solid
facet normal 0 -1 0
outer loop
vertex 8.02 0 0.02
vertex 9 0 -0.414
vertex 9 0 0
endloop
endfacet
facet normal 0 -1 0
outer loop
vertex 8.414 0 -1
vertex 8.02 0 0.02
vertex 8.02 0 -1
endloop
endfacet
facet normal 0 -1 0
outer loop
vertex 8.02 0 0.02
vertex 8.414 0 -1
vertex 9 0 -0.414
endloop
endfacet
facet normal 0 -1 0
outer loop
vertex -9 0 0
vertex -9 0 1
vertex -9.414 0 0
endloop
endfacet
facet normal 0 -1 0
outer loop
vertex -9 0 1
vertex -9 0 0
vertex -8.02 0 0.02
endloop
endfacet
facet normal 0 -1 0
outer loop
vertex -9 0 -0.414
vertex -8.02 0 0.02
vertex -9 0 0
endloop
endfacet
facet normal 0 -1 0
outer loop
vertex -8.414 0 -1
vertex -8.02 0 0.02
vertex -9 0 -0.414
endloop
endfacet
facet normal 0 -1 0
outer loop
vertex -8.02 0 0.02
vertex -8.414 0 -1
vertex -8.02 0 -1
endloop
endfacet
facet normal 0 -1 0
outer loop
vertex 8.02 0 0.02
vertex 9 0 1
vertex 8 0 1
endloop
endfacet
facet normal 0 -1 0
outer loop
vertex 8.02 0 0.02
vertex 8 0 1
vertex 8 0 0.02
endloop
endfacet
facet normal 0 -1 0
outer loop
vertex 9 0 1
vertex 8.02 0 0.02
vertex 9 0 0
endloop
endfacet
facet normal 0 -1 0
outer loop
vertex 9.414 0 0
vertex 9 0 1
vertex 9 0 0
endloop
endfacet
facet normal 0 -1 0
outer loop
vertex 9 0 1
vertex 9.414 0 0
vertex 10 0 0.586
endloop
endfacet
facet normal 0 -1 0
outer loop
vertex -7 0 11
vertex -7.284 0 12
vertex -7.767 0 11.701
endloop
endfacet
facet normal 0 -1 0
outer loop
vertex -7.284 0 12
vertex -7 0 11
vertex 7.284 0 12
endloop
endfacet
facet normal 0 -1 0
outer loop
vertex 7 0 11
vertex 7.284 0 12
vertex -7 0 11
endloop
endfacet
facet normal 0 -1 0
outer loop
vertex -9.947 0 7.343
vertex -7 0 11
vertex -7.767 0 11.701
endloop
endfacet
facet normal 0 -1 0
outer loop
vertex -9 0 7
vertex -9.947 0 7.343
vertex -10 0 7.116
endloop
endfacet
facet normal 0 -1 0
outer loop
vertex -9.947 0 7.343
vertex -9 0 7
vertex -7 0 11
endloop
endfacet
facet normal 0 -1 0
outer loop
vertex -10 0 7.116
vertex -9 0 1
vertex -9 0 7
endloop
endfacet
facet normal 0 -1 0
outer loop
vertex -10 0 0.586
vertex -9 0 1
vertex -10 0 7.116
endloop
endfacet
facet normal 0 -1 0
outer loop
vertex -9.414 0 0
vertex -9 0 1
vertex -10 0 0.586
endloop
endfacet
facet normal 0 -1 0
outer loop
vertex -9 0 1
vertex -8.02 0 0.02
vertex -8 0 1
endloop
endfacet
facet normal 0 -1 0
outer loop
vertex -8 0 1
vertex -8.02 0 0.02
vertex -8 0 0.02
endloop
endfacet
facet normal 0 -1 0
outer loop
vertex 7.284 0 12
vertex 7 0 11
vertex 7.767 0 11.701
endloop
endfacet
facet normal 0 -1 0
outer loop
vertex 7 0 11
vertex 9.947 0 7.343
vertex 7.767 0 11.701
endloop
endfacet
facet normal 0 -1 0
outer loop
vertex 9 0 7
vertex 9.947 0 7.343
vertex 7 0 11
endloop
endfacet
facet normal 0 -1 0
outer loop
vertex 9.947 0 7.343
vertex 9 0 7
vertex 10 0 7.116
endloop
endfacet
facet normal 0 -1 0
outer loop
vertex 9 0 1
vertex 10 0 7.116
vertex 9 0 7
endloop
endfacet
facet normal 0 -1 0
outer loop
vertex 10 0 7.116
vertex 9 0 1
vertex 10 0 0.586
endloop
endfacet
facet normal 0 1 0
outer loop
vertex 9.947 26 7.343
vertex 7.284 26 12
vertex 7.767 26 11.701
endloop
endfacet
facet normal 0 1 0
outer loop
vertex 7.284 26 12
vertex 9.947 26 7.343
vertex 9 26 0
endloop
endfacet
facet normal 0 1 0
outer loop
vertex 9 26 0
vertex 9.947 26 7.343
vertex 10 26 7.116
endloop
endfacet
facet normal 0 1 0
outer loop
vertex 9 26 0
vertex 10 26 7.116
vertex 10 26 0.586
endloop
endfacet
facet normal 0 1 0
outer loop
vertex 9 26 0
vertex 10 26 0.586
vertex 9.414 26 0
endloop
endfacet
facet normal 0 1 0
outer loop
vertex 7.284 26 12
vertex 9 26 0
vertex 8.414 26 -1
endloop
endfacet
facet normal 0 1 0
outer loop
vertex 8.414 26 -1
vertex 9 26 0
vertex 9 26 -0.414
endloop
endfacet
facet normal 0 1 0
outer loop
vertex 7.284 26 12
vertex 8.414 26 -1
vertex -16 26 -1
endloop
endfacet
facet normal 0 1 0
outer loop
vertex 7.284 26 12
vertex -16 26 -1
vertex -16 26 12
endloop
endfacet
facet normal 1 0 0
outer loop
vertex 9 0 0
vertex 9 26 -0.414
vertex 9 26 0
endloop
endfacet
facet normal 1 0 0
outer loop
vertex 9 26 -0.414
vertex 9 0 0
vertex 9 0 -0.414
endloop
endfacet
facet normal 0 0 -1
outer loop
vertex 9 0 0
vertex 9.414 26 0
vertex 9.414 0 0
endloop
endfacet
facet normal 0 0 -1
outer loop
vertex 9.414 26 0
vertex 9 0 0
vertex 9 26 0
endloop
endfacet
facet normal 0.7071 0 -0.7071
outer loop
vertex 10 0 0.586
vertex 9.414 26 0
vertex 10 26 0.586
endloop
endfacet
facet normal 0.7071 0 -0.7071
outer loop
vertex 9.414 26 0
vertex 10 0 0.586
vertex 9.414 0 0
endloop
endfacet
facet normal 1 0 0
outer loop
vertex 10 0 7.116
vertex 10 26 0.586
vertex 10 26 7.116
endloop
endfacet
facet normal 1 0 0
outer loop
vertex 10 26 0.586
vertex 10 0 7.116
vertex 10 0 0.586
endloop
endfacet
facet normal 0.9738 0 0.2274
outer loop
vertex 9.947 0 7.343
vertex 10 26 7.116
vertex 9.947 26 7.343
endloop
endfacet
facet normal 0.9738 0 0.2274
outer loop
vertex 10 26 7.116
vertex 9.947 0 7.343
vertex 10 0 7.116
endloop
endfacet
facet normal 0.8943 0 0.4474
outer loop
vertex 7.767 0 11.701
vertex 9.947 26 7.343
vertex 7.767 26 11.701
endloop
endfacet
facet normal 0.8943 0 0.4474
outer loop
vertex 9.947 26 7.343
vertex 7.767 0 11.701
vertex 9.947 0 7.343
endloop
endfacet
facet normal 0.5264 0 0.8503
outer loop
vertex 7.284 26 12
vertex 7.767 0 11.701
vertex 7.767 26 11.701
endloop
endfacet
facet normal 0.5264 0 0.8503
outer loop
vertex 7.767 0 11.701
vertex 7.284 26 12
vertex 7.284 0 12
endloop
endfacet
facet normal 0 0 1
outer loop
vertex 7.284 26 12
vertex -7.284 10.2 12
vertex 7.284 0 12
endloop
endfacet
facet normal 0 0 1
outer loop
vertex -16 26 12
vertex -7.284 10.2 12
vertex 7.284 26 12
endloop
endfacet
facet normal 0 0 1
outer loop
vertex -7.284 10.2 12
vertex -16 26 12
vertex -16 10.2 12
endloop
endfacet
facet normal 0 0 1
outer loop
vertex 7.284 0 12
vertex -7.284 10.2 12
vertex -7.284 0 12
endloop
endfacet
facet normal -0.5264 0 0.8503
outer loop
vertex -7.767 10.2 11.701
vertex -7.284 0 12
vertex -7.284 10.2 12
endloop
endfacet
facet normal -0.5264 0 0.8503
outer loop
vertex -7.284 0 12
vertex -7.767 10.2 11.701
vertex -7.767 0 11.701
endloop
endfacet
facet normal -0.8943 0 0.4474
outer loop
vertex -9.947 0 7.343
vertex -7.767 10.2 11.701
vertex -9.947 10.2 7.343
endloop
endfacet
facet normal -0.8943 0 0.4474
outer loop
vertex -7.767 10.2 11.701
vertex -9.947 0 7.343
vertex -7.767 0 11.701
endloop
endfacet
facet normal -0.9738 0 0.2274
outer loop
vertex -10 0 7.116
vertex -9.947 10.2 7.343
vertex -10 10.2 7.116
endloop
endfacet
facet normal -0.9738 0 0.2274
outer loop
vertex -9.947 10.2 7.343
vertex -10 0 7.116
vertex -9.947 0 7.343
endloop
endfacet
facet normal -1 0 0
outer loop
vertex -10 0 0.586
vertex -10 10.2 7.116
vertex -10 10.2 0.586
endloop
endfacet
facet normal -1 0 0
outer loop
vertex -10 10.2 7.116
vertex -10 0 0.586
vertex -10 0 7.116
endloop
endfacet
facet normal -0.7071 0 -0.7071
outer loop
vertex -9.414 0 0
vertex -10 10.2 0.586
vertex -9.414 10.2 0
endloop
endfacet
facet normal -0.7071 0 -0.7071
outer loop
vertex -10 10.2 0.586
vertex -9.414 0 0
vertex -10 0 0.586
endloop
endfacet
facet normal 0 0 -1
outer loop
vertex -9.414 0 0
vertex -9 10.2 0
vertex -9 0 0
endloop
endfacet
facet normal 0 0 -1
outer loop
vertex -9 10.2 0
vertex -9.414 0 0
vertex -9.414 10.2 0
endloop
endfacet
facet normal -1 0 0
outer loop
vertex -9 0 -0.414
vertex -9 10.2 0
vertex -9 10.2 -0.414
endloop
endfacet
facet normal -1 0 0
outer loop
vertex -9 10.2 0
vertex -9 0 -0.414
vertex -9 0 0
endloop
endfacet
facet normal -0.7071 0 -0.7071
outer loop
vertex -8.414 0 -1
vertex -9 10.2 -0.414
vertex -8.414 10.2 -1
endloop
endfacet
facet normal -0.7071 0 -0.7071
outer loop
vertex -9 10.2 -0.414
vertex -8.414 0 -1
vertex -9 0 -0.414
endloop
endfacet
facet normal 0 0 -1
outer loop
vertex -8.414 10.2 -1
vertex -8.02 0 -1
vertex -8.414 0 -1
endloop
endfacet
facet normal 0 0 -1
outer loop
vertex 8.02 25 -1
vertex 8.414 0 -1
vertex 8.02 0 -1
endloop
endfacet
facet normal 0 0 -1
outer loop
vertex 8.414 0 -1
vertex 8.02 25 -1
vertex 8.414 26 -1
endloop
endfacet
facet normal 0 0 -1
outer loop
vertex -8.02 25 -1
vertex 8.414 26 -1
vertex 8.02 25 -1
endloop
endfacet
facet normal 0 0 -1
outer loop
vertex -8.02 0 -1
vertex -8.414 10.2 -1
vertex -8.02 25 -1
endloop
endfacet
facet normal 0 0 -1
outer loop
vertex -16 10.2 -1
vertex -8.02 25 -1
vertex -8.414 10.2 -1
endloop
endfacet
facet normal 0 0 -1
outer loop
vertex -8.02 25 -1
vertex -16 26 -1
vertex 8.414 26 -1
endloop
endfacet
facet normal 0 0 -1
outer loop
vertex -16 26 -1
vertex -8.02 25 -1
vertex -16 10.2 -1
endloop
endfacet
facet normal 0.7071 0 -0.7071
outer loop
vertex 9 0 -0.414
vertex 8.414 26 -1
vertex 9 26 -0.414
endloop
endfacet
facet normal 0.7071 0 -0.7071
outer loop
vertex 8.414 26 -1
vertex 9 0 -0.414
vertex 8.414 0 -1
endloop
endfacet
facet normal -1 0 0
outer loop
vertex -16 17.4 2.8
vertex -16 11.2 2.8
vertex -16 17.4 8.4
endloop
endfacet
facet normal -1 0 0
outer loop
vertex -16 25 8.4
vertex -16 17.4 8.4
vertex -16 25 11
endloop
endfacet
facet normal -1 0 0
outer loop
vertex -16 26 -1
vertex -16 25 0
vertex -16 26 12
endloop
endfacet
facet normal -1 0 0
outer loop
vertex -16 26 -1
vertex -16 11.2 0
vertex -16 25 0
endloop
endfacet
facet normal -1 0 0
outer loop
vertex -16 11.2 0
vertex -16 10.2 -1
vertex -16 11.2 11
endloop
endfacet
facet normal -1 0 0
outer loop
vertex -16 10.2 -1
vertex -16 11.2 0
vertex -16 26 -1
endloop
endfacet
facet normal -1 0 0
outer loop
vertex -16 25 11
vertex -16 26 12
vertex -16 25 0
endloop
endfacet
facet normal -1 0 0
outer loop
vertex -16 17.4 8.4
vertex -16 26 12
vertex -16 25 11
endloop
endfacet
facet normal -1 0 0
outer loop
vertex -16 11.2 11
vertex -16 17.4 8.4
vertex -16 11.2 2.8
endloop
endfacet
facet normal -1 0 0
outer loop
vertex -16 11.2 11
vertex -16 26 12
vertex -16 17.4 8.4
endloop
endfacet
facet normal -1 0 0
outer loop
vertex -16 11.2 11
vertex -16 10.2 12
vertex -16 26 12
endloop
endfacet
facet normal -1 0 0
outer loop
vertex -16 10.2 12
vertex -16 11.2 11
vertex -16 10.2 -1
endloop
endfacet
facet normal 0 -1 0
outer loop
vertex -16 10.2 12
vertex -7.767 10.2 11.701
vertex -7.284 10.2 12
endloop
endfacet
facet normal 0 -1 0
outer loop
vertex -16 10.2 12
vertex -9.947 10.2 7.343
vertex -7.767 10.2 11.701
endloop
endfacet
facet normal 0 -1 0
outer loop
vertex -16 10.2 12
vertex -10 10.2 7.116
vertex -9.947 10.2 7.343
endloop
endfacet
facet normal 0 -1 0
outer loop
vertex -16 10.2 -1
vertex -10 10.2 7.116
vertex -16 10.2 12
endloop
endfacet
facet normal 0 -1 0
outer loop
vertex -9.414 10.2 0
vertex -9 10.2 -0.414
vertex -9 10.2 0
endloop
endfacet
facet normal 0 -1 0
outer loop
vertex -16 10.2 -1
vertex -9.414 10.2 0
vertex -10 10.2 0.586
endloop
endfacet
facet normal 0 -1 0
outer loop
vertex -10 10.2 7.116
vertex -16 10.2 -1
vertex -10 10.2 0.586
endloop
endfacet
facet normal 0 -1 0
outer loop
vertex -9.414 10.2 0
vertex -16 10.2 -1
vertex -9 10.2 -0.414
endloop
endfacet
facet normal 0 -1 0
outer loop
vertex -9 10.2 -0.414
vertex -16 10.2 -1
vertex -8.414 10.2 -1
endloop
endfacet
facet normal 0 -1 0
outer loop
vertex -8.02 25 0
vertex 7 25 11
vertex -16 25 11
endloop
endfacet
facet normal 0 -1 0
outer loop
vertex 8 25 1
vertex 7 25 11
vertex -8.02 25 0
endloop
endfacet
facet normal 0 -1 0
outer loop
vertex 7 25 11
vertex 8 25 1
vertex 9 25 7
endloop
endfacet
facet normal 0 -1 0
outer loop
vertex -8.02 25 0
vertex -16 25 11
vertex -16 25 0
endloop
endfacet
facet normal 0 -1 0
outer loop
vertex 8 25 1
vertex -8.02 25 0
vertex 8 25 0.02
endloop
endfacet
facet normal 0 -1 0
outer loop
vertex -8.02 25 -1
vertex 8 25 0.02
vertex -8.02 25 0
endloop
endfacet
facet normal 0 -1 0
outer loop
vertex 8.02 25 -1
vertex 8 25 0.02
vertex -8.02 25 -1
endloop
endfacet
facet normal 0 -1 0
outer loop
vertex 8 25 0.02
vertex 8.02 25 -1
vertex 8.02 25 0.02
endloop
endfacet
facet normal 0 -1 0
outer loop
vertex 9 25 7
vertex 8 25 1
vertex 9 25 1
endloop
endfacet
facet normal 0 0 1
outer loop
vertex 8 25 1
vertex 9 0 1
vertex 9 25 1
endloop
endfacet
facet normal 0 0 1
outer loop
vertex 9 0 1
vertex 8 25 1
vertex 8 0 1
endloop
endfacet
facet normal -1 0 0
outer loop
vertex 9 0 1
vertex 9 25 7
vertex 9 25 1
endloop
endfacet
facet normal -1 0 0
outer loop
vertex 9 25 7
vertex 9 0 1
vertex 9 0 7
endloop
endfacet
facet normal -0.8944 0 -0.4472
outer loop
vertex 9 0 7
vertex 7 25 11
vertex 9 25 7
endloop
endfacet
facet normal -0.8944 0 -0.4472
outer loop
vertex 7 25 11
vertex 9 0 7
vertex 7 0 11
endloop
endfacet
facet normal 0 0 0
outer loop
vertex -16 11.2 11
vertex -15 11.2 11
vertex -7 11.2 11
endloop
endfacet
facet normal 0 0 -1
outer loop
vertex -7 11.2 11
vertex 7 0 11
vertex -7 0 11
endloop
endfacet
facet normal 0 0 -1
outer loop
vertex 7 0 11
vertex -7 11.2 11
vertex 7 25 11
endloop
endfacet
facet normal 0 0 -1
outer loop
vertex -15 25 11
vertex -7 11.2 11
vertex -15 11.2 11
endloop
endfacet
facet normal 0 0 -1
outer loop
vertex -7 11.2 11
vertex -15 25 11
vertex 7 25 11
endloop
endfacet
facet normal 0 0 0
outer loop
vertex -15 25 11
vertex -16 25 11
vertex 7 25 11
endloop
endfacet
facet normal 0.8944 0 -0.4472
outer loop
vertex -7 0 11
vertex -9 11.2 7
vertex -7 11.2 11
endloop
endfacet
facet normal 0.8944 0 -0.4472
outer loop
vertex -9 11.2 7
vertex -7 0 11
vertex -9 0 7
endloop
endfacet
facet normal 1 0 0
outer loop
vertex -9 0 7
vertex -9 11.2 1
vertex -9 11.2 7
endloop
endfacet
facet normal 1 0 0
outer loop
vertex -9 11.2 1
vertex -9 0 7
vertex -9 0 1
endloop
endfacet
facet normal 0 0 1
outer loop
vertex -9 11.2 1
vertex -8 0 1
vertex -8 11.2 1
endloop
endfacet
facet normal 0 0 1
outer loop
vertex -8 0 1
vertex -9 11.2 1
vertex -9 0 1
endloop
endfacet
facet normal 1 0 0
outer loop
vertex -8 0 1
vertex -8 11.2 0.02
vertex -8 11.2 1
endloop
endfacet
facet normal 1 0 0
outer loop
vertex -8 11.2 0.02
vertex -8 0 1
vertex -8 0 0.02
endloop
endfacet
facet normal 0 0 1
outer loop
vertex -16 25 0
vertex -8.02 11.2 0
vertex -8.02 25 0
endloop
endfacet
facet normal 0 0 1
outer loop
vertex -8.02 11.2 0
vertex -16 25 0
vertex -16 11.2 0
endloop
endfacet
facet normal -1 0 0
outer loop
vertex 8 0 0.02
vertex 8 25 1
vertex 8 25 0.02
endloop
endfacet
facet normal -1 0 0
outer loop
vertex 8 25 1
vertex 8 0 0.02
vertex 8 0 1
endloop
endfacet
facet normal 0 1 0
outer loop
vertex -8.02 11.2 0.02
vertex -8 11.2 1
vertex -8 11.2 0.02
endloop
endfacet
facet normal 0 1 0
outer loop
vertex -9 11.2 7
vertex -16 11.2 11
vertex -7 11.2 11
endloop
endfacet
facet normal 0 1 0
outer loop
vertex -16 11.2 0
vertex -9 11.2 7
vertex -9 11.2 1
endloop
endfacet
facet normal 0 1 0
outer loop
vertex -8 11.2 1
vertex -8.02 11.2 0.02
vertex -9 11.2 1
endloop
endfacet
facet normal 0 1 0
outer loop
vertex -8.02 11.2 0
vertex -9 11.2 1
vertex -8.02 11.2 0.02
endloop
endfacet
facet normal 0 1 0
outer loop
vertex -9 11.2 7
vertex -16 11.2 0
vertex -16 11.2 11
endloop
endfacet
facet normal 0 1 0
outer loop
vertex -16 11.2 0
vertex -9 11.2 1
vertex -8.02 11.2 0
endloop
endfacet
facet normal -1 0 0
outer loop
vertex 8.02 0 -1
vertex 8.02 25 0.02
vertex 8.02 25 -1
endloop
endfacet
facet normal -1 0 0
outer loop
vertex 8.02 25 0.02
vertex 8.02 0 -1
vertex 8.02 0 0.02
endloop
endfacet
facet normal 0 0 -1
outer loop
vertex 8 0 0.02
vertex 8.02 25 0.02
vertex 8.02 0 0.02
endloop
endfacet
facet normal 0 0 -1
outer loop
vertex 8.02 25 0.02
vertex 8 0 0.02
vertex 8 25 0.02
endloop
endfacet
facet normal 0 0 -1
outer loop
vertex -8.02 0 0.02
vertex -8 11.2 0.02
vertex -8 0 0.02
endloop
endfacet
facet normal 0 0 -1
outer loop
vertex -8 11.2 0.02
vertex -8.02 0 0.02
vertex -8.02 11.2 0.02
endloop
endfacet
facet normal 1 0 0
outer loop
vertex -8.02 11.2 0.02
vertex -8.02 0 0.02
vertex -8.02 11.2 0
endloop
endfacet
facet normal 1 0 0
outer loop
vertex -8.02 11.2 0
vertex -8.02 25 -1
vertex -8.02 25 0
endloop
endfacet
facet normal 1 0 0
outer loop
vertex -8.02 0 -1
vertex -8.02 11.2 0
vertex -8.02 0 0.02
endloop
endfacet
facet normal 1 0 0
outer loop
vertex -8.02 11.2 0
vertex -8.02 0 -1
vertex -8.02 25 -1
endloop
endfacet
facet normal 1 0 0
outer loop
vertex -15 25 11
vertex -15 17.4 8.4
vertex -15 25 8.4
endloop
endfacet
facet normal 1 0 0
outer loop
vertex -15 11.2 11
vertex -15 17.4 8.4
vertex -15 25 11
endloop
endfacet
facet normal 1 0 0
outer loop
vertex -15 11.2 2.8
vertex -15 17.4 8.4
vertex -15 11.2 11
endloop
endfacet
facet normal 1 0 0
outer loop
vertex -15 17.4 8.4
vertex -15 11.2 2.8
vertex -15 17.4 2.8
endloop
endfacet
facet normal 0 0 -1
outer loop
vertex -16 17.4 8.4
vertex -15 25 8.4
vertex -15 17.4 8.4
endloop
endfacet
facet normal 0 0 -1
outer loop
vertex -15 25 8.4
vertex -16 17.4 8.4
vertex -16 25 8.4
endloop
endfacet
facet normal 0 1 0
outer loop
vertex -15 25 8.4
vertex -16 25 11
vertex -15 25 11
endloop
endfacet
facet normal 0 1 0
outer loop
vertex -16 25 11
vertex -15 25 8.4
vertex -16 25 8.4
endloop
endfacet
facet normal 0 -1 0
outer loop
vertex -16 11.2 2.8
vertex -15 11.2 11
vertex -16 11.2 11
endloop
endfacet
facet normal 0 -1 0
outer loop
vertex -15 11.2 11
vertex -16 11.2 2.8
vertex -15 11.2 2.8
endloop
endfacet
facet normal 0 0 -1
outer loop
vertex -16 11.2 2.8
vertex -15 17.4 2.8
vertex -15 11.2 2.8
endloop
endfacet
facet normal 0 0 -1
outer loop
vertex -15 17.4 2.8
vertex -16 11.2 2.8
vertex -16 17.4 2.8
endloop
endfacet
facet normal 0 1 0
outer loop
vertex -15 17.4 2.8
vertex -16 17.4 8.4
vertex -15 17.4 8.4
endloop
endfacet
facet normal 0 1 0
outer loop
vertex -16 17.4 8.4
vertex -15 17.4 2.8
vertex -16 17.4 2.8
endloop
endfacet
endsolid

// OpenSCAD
/*
JOELHO DE 90 GRAUS

Geometria:
- Entrada com seção interna poligonal de 10 lados.
- Entrada no plano y = 0.
- Trecho inicial avança no eixo +y.
- Curva reta de 90 graus.
- Saída retangular avança no eixo -x.
- Espessura das paredes: 1 mm.
- Base do trecho inicial aberta.
- Entrada aberta.
- Saída retangular aberta no fim.
- Na face terminal da saída, a figura menor fica FECHADA.
- O restante da abertura retangular fica ABERTO.
*/

epsilon = 0.02;


// =========================
// PARÂMETROS GERAIS
// =========================

espessura = 1.0;

// Comprimento interno do trecho reto da entrada,
// medido no eixo y.
comprimento_entrada = 25;

// Comprimento interno da saída,
// medido no eixo x, no sentido negativo.
comprimento_saida_x = 15;

// Abertura inferior do trecho de entrada.
// Por padrão, vai até a curva.
comprimento_abertura_base = comprimento_entrada;


// =========================
// ENTRADA POLIGONAL INTERNA
// =========================

entrada_base_largura = 16;
entrada_topo_largura = 14;

entrada_vertical_baixo = 1;
entrada_degrau_horizontal = 1;
entrada_vertical_meio = 6;
entrada_obliquo_altura = 4;

entrada_altura_total =
    entrada_vertical_baixo
    + entrada_vertical_meio
    + entrada_obliquo_altura;


// Para compatibilizar:
// base = 16 mm,
// degrau horizontal = 1 mm para fora em cada lado,
// topo = 14 mm.
entrada_obliquo_dx =
    (
        entrada_base_largura
        + 2 * entrada_degrau_horizontal
        - entrada_topo_largura
    ) / 2;


// =========================
// SAÍDA RETANGULAR INTERNA
// =========================

// Dimensão interna da saída no eixo y.
saida_largura_y_interna = 13.8;

// Dimensão interna da saída no eixo z.
saida_altura_z_interna = 11;


// =========================
// FIGURA MENOR QUE FICARÁ FECHADA
// NA FACE TERMINAL DA SAÍDA
// =========================

abertura_y_1 = 6.2;
abertura_y_2 = 7.6;

abertura_z_1 = 2.8;
abertura_z_2 = 8.4;
abertura_z_total = 11.2;


// =========================
// PERFIL 2D DA ENTRADA
// Coordenadas no plano xz
// =========================

function perfil_entrada_pontos() =
    let(
        b = entrada_base_largura / 2,

        z1 = entrada_vertical_baixo,
        z2 = entrada_vertical_baixo + entrada_vertical_meio,
        z3 = entrada_altura_total,

        x_base = b,
        x_externo = b + entrada_degrau_horizontal,
        x_topo = entrada_topo_largura / 2
    )
    [
        [-x_base,    0],
        [ x_base,    0],

        [ x_base,    z1],
        [ x_externo, z1],
        [ x_externo, z2],
        [ x_topo,    z3],

        [-x_topo,    z3],
        [-x_externo, z2],
        [-x_externo, z1],
        [-x_base,    z1]
    ];


// =========================
// MÓDULOS 2D
// =========================

module perfil_entrada_interno_2d() {
    polygon(points = perfil_entrada_pontos());
}


module perfil_entrada_externo_2d() {
    offset(delta = espessura, chamfer = true)
        polygon(points = perfil_entrada_pontos());
}


// Retângulo interno da saída no plano yz.
// Coordenada horizontal local = eixo y.
// Coordenada vertical local   = eixo z.
module perfil_saida_interno_2d() {
    translate([
        -saida_largura_y_interna / 2,
        0
    ])
        square([
            saida_largura_y_interna,
            saida_altura_z_interna
        ]);
}


// Retângulo externo da saída no plano yz.
module perfil_saida_externo_2d() {
    translate([
        -saida_largura_y_interna / 2 - espessura,
        -espessura
    ])
        square([
            saida_largura_y_interna + 2 * espessura,
            saida_altura_z_interna + 2 * espessura
        ]);
}


// Perfil da região que ficará FECHADA na saída.
// Antes esta região era o furo; agora ela será a parte sólida.
//
// Plano local yz:
// - horizontal = y;
// - vertical   = z.
//
// Começa no canto de menor y e menor z da abertura retangular.
module perfil_fechado_terminal_2d() {

    y_min = -saida_largura_y_interna / 2;

    polygon(points = [
        [y_min,                                      0],
        [y_min,                                      abertura_z_1],

        [y_min + abertura_y_1,                       abertura_z_1],
        [y_min + abertura_y_1,                       abertura_z_2],

        [y_min + abertura_y_1 + abertura_y_2,        abertura_z_2],
        [y_min + abertura_y_1 + abertura_y_2,        abertura_z_total],

        [y_min,                                      abertura_z_total]
    ]);
}


// =========================
// EXTRUSÕES
// =========================

// Extrusão de perfil no plano xz ao longo do eixo +y.
module extrude_y(comprimento) {
    multmatrix([
        [1, 0, 0, 0],
        [0, 0, 1, 0],
        [0, 1, 0, 0],
        [0, 0, 0, 1]
    ])
        linear_extrude(height = comprimento, convexity = 10)
            children();
}


// Extrusão de perfil no plano yz ao longo do eixo +x.
// Coordenada horizontal 2D vira y.
// Coordenada vertical 2D vira z.
module extrude_x_positivo(comprimento) {
    multmatrix([
        [0, 0, 1, 0],
        [1, 0, 0, 0],
        [0, 1, 0, 0],
        [0, 0, 0, 1]
    ])
        linear_extrude(height = comprimento, convexity = 10)
            children();
}


// Extrusão de perfil no plano yz ao longo do eixo -x.
module extrude_x_negativo(comprimento) {
    mirror([1, 0, 0])
        extrude_x_positivo(comprimento)
            children();
}


// =========================
// TRECHO DE ENTRADA
// =========================

module volume_externo_entrada() {
    extrude_y(comprimento_entrada + espessura)
        perfil_entrada_externo_2d();
}


module vazio_interno_entrada() {
    translate([0, -epsilon, 0])
        extrude_y(comprimento_entrada + epsilon)
            perfil_entrada_interno_2d();
}


// =========================
// SAÍDA RETANGULAR NO SENTIDO -X
// =========================

module volume_externo_saida_x_negativo() {
    translate([
        0,
        comprimento_entrada - saida_largura_y_interna / 2,
        0
    ])
        extrude_x_negativo(comprimento_saida_x + espessura)
            perfil_saida_externo_2d();
}


// Vazio interno da saída retangular.
//
// Agora atravessa a face terminal inteira,
// para deixar a abertura retangular totalmente aberta.
module vazio_interno_saida_x_negativo_totalmente_aberto() {
    translate([
        epsilon,
        comprimento_entrada - saida_largura_y_interna / 2,
        0
    ])
        extrude_x_negativo(comprimento_saida_x + espessura + 2 * epsilon)
            perfil_saida_interno_2d();
}


// Placa terminal com a figura menor.
// Esta é a região que ficará fechada.
module placa_terminal_fechada() {
    translate([
        -comprimento_saida_x - espessura,
        comprimento_entrada - saida_largura_y_interna / 2,
        0
    ])
        extrude_x_positivo(espessura)
            perfil_fechado_terminal_2d();
}


// =========================
// ABERTURA INFERIOR DO TRECHO DE ENTRADA
// =========================

module abertura_base_entrada() {
    translate([
        -entrada_base_largura / 2 - epsilon,
        -epsilon,
        -espessura - epsilon
    ])
        cube([
            entrada_base_largura + 2 * epsilon,
            comprimento_abertura_base + epsilon,
            espessura + 2 * epsilon
        ]);
}


// =========================
// CORPO OCO DO JOELHO
// =========================

module corpo_oco_joelho() {
    difference() {

        union() {
            volume_externo_entrada();
            volume_externo_saida_x_negativo();
        }

        // Interior da entrada poligonal
        vazio_interno_entrada();

        // Interior da saída retangular,
        // atravessando a face terminal inteira
        vazio_interno_saida_x_negativo_totalmente_aberto();

        // Base aberta no trecho de entrada
        abertura_base_entrada();
    }
}


// =========================
// JOELHO COMPLETO
// =========================

module joelho_90() {
    union() {
        corpo_oco_joelho();

        // Agora esta peça fecha apenas a figura menor,
        // deixando aberto o restante do retângulo.
        placa_terminal_fechada();
    }
}


// =========================
// GERAR MODELO
// =========================

joelho_90();
